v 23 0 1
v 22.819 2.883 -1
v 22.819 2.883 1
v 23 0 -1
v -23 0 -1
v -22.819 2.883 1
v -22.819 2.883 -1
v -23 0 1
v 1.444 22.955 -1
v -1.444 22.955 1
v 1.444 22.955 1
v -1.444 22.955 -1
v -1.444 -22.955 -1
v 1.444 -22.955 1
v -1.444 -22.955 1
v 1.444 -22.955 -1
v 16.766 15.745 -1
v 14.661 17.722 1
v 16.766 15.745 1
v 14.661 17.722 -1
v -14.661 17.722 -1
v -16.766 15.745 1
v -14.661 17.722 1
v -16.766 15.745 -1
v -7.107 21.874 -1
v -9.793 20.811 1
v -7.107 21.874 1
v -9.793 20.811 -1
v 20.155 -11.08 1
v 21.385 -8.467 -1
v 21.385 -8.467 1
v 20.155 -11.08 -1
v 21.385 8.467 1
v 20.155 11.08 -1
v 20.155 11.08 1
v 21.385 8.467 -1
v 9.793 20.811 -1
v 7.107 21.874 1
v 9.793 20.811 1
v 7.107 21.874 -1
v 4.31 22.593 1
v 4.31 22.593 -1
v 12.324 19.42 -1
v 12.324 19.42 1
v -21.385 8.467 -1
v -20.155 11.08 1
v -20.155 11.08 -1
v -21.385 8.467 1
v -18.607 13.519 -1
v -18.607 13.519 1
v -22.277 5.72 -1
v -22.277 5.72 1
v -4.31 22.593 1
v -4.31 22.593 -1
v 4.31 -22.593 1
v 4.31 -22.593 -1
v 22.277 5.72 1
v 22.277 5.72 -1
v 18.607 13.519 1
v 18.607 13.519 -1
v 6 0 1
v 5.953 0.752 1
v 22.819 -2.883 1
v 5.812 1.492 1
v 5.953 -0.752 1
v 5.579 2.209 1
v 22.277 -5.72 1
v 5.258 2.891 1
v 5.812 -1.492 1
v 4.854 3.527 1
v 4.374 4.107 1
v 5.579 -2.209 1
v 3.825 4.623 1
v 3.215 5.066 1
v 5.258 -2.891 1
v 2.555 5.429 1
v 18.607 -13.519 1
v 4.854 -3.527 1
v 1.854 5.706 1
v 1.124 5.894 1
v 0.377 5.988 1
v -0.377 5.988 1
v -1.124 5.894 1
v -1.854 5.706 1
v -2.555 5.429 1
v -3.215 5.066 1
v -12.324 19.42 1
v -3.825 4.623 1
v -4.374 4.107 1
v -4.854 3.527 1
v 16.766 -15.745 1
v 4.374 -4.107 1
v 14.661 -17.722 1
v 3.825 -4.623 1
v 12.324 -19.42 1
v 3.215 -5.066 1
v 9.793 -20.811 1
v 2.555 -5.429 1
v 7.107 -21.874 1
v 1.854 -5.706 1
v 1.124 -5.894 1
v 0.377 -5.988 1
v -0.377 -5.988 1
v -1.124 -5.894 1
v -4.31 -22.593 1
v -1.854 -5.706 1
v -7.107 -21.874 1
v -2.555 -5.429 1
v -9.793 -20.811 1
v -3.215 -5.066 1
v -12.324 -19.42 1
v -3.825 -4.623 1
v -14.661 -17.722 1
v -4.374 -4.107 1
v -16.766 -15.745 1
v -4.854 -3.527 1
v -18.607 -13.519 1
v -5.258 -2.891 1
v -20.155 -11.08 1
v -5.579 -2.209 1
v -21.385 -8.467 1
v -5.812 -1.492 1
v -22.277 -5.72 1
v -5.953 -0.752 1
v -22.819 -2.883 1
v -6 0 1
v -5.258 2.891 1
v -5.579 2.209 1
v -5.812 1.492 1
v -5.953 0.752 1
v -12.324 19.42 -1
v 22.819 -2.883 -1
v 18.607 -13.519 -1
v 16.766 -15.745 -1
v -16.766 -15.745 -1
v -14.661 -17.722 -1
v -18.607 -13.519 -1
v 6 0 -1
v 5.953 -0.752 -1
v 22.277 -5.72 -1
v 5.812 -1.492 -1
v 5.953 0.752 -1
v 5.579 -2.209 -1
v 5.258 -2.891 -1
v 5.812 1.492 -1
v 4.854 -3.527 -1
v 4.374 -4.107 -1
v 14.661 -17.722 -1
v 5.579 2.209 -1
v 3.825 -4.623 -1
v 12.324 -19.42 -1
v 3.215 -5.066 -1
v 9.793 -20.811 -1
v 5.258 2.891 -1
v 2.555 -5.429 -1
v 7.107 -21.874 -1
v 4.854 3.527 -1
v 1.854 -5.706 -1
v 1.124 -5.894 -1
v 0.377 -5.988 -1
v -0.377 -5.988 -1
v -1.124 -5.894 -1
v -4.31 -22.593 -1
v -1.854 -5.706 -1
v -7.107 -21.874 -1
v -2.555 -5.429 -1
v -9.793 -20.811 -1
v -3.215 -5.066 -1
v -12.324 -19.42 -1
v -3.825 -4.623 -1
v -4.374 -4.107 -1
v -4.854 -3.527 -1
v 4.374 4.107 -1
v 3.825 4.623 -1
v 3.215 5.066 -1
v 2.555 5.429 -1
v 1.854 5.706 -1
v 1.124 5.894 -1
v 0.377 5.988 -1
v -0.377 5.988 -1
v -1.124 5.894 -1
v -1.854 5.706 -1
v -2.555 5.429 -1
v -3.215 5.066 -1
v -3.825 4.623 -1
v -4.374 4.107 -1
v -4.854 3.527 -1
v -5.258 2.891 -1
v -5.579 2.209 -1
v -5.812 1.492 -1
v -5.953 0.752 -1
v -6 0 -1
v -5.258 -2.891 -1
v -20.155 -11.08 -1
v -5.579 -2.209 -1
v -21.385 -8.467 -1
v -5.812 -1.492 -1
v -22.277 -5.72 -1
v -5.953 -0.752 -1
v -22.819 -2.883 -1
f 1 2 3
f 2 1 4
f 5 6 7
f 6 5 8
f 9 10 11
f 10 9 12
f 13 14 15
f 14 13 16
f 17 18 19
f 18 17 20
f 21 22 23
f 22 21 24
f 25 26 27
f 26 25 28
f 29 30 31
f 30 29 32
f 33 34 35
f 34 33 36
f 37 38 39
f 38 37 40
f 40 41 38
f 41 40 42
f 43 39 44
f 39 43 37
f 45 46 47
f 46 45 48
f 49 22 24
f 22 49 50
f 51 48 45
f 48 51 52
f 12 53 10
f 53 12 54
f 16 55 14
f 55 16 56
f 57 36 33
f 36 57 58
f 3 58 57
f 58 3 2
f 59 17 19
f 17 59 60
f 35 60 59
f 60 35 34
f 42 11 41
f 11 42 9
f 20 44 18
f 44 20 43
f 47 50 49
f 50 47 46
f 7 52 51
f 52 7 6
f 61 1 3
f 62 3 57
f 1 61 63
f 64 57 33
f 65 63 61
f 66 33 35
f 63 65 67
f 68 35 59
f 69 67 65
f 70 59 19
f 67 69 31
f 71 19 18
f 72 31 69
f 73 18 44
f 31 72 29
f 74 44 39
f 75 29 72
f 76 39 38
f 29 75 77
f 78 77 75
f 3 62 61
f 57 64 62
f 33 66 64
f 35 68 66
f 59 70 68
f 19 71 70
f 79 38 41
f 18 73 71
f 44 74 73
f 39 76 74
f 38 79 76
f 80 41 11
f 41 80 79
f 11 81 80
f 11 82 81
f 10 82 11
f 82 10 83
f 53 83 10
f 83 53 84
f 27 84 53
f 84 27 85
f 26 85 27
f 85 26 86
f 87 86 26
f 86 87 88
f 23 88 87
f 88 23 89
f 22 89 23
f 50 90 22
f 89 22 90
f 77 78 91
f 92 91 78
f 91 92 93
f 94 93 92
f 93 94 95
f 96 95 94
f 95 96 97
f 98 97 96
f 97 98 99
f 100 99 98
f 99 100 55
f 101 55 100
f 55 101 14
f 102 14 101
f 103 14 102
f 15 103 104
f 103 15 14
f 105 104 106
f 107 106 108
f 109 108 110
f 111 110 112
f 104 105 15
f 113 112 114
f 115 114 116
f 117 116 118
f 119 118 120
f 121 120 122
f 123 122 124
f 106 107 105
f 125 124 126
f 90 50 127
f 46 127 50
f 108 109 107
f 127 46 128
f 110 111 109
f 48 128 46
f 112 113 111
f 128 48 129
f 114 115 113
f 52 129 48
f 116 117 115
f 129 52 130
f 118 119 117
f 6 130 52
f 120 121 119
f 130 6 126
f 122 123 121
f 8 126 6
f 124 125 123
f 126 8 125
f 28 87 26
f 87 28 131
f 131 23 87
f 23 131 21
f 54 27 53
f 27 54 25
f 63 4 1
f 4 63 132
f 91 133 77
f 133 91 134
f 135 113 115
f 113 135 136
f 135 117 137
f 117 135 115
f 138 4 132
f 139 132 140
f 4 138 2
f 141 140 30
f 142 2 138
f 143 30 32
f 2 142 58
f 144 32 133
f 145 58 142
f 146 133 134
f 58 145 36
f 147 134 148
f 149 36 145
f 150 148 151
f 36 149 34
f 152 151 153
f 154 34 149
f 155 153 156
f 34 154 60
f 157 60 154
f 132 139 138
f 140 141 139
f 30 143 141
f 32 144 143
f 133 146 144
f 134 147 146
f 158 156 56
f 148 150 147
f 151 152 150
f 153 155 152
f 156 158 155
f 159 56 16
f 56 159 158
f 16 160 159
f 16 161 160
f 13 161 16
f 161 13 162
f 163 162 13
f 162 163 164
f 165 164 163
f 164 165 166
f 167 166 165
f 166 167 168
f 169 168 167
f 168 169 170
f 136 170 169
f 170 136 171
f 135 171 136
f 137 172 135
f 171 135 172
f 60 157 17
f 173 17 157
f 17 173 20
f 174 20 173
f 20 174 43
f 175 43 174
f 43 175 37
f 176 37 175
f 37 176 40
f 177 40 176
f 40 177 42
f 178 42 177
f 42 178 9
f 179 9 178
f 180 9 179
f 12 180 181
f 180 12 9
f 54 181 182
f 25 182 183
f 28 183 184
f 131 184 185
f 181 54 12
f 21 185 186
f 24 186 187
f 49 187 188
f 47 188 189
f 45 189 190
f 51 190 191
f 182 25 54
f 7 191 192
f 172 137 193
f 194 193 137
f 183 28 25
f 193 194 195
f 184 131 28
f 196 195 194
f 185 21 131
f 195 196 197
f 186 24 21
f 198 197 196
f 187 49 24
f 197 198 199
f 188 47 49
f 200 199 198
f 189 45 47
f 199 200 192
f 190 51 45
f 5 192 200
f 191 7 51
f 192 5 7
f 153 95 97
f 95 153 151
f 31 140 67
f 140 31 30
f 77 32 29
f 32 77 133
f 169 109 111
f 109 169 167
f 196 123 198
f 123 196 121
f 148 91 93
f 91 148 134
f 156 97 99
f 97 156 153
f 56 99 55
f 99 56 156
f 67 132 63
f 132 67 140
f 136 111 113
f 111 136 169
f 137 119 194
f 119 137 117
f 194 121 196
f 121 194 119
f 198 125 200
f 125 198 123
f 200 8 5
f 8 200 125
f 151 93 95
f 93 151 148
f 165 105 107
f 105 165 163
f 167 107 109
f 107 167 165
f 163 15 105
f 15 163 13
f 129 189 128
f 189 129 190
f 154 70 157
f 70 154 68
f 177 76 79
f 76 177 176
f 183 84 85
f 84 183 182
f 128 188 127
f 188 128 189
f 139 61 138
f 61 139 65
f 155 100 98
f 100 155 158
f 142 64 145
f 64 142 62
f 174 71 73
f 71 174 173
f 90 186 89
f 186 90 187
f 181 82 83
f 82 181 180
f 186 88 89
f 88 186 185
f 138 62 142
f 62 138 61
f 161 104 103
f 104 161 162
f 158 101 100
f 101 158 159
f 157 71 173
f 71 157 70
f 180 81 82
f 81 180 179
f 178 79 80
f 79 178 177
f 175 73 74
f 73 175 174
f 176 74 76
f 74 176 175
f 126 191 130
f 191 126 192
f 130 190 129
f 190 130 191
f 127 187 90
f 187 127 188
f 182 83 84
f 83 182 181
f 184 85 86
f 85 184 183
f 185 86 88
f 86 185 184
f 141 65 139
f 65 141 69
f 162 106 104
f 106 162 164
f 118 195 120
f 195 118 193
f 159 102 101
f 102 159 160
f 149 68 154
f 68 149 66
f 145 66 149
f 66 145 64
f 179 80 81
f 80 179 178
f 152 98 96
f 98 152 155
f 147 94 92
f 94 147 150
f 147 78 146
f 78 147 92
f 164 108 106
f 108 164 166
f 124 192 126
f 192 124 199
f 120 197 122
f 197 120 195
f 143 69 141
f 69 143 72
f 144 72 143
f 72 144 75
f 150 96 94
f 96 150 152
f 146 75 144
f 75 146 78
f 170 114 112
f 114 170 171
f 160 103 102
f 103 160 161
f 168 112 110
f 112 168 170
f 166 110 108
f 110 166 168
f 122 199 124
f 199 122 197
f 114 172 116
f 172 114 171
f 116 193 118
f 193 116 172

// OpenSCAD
$fn = 50;


difference() {
	union() {
		translate(v = [0, 0, -1.0000000000]) {
			cylinder(h = 2, r = 23.0000000000);
		}
	}
	union() {
		translate(v = [0, 0, -100.0000000000]) {
			cylinder(h = 200, r = 6);
		}
	}
}
